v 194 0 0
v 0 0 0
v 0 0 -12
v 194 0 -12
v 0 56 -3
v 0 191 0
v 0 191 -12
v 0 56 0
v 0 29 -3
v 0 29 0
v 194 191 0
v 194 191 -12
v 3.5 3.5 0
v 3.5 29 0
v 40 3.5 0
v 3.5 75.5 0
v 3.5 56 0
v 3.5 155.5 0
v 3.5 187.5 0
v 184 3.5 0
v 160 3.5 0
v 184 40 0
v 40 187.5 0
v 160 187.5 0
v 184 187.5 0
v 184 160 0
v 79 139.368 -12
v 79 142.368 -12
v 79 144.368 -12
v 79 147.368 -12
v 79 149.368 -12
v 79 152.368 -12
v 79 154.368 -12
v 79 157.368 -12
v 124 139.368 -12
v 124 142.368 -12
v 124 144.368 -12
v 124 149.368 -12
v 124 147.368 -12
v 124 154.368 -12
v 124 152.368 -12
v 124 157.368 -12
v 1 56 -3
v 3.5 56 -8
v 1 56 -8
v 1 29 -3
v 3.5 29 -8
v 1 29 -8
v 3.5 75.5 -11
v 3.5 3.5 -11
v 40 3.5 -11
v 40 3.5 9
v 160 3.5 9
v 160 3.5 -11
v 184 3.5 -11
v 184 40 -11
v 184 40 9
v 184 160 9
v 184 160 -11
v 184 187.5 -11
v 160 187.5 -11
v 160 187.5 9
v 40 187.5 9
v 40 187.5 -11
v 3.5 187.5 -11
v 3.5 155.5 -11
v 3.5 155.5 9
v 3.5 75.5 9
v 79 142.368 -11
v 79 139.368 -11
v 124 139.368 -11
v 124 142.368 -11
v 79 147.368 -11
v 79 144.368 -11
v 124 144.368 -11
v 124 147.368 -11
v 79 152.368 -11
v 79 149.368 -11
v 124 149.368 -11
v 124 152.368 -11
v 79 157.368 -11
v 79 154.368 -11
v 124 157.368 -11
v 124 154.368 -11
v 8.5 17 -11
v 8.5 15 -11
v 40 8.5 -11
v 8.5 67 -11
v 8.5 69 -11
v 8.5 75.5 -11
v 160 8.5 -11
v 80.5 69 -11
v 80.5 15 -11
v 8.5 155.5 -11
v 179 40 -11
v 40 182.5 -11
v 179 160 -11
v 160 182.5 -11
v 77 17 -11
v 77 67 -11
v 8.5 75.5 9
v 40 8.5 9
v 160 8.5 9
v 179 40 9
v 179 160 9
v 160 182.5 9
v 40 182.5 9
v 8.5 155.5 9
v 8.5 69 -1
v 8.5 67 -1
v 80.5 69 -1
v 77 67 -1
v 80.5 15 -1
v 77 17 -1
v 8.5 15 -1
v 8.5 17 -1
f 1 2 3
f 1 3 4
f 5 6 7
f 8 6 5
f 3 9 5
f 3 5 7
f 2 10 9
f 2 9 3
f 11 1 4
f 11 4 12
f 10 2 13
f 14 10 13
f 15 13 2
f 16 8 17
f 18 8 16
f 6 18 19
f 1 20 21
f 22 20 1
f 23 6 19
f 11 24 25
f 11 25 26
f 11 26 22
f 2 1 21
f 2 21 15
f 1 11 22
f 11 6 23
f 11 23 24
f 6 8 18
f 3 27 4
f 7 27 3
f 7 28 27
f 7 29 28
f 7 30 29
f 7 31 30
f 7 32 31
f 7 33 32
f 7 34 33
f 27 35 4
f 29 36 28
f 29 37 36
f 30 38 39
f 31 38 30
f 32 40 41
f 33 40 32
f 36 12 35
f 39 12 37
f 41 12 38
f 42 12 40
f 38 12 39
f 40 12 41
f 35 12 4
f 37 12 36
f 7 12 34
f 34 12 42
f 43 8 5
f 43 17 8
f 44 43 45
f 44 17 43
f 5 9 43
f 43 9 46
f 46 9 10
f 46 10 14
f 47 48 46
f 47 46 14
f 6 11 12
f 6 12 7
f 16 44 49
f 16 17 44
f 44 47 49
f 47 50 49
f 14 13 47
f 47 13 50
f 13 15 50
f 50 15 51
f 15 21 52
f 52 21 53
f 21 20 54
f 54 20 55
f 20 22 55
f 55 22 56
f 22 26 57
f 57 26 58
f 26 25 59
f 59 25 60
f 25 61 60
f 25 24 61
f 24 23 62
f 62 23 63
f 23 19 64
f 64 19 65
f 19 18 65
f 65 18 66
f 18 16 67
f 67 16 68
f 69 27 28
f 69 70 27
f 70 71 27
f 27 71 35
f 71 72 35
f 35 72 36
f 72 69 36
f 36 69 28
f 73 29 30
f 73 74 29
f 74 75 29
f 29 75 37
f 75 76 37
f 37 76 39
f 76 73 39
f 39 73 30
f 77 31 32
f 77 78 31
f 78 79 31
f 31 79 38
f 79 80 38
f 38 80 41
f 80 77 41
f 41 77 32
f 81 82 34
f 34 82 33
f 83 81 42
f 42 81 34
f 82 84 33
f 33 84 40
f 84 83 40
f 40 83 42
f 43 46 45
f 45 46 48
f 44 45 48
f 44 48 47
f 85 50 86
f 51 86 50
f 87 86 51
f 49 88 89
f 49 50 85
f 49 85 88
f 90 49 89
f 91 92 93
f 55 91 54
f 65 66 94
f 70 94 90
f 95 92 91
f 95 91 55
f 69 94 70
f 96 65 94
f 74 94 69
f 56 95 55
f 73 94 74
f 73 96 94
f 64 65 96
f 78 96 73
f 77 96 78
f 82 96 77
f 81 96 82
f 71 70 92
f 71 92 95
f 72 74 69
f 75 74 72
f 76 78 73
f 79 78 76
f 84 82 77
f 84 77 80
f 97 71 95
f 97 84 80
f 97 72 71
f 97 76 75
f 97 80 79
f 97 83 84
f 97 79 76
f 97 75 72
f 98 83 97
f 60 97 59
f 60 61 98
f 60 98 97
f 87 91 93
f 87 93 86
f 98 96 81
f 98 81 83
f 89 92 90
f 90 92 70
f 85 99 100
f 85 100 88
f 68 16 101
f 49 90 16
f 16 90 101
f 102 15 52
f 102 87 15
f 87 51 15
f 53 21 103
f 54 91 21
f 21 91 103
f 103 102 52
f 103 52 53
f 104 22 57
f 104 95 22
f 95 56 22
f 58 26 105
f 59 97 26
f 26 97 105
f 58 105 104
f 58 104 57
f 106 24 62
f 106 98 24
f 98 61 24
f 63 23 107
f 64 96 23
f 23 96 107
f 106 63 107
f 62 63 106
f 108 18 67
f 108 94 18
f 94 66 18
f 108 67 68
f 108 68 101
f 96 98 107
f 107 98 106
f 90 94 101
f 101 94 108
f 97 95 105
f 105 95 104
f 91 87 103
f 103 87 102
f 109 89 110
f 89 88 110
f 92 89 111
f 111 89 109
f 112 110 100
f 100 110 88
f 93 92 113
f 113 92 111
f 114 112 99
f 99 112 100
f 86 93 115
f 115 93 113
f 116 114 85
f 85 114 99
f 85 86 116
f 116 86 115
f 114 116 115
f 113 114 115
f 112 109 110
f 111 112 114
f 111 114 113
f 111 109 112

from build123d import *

# Parameters (mm, degrees)
SKETCH_W            = 194
SKETCH_H            = 191
PAD_DEPTH           = 12
SKETCH002_W         = 180.5
SKETCH002_H         = 184
POCKET_DEPTH        = 11
SKETCH004_W         = 120
SKETCH004_H         = 5
SKETCH004_W_2       = 5
SKETCH004_H_2       = 120
SKETCH004_H_3       = 80
PAD001_DEPTH        = 20
SKETCH005_W         = 72
SKETCH005_H         = 54
PAD002_DEPTH        = 10
SKETCH006_W         = 70
SKETCH006_H         = 50
POCKET001_DEPTH     = 10
SKETCH007_W         = 27
SKETCH007_H         = 3
POCKET002_DEPTH     = 5
SKETCH008_W         = 2.5
SKETCH008_H         = 27
POCKET003_DEPTH     = 5
SKETCH009_W         = 45
SKETCH009_H         = 3
POCKET004_DEPTH     = 5
LINEARPATTERN_COUNT = 4
LINEARPATTERN_PITCH = 5


with BuildPart() as part:
    # Sketch → Pad (new body)
    with BuildSketch(Plane.XY):
        with Locations((97, 95.5)):
            Rectangle(SKETCH_W, SKETCH_H)
    extrude(amount=-PAD_DEPTH)

    # Sketch002 → Pocket (cut)
    with BuildSketch(Plane.XY):
        with Locations((93.75, 95.5)):
            Rectangle(SKETCH002_W, SKETCH002_H)
    extrude(amount=-POCKET_DEPTH, mode=Mode.SUBTRACT)

    # Sketch004 (on Face11 of Pocket) → Pad001 (join)
    with BuildSketch(Plane.XY.offset(-11)):
        with Locations((100, 185)):
            Rectangle(SKETCH004_W, SKETCH004_H)
        with Locations((100, 6)):
            Rectangle(SKETCH004_W, SKETCH004_H)
        with Locations((181.5, 100)):
            Rectangle(SKETCH004_W_2, SKETCH004_H_2)
        with Locations((6, 115.5)):
            Rectangle(SKETCH004_W_2, SKETCH004_H_3)
    extrude(amount=PAD001_DEPTH)

    # Sketch005 (on Face20 of Pad001) → Pad002 (join)
    with BuildSketch(Plane.XY.offset(-11)):
        with Locations((44.5, 42)):
            Rectangle(SKETCH005_W, SKETCH005_H)
    extrude(amount=PAD002_DEPTH)

    # Sketch006 (on Face40 of Pad002) → Pocket001 (cut)
    with BuildSketch(Plane.XY.offset(-1)):
        with Locations((42, 42)):
            Rectangle(SKETCH006_W, SKETCH006_H)
    extrude(amount=-POCKET001_DEPTH, mode=Mode.SUBTRACT)

    # Sketch007 (on Face2 of Pocket001) → Pocket002 (cut)
    with BuildSketch(Plane(origin=(0, 0, 0), x_dir=(0, -1, 0), z_dir=(-1, 0, 0))):
        with Locations((-42.5, -1.5)):
            Rectangle(SKETCH007_W, SKETCH007_H)
    extrude(amount=-POCKET002_DEPTH, mode=Mode.SUBTRACT)

    # Sketch008 (on Face7 of Pocket002) → Pocket003 (cut)
    with BuildSketch(Plane.XY.offset(-3)):
        with Locations((2.25, 42.5)):
            Rectangle(SKETCH008_W, SKETCH008_H)
    extrude(amount=-POCKET003_DEPTH, mode=Mode.SUBTRACT)

    # Sketch009 (on Face22 of Pocket003) → Pocket004 (cut)
    with BuildSketch(Plane.XY.offset(-11)):
        with Locations((101.5, 155.868176)):
            Rectangle(SKETCH009_W, SKETCH009_H)
    pocket004 = extrude(amount=-POCKET004_DEPTH, mode=Mode.SUBTRACT)

    # LinearPattern: Pocket004 ×4
    with Locations(*[(0, -i * LINEARPATTERN_PITCH, 0) for i in range(1, LINEARPATTERN_COUNT)]):
        add(pocket004, mode=Mode.SUBTRACT)


solid = part.part
